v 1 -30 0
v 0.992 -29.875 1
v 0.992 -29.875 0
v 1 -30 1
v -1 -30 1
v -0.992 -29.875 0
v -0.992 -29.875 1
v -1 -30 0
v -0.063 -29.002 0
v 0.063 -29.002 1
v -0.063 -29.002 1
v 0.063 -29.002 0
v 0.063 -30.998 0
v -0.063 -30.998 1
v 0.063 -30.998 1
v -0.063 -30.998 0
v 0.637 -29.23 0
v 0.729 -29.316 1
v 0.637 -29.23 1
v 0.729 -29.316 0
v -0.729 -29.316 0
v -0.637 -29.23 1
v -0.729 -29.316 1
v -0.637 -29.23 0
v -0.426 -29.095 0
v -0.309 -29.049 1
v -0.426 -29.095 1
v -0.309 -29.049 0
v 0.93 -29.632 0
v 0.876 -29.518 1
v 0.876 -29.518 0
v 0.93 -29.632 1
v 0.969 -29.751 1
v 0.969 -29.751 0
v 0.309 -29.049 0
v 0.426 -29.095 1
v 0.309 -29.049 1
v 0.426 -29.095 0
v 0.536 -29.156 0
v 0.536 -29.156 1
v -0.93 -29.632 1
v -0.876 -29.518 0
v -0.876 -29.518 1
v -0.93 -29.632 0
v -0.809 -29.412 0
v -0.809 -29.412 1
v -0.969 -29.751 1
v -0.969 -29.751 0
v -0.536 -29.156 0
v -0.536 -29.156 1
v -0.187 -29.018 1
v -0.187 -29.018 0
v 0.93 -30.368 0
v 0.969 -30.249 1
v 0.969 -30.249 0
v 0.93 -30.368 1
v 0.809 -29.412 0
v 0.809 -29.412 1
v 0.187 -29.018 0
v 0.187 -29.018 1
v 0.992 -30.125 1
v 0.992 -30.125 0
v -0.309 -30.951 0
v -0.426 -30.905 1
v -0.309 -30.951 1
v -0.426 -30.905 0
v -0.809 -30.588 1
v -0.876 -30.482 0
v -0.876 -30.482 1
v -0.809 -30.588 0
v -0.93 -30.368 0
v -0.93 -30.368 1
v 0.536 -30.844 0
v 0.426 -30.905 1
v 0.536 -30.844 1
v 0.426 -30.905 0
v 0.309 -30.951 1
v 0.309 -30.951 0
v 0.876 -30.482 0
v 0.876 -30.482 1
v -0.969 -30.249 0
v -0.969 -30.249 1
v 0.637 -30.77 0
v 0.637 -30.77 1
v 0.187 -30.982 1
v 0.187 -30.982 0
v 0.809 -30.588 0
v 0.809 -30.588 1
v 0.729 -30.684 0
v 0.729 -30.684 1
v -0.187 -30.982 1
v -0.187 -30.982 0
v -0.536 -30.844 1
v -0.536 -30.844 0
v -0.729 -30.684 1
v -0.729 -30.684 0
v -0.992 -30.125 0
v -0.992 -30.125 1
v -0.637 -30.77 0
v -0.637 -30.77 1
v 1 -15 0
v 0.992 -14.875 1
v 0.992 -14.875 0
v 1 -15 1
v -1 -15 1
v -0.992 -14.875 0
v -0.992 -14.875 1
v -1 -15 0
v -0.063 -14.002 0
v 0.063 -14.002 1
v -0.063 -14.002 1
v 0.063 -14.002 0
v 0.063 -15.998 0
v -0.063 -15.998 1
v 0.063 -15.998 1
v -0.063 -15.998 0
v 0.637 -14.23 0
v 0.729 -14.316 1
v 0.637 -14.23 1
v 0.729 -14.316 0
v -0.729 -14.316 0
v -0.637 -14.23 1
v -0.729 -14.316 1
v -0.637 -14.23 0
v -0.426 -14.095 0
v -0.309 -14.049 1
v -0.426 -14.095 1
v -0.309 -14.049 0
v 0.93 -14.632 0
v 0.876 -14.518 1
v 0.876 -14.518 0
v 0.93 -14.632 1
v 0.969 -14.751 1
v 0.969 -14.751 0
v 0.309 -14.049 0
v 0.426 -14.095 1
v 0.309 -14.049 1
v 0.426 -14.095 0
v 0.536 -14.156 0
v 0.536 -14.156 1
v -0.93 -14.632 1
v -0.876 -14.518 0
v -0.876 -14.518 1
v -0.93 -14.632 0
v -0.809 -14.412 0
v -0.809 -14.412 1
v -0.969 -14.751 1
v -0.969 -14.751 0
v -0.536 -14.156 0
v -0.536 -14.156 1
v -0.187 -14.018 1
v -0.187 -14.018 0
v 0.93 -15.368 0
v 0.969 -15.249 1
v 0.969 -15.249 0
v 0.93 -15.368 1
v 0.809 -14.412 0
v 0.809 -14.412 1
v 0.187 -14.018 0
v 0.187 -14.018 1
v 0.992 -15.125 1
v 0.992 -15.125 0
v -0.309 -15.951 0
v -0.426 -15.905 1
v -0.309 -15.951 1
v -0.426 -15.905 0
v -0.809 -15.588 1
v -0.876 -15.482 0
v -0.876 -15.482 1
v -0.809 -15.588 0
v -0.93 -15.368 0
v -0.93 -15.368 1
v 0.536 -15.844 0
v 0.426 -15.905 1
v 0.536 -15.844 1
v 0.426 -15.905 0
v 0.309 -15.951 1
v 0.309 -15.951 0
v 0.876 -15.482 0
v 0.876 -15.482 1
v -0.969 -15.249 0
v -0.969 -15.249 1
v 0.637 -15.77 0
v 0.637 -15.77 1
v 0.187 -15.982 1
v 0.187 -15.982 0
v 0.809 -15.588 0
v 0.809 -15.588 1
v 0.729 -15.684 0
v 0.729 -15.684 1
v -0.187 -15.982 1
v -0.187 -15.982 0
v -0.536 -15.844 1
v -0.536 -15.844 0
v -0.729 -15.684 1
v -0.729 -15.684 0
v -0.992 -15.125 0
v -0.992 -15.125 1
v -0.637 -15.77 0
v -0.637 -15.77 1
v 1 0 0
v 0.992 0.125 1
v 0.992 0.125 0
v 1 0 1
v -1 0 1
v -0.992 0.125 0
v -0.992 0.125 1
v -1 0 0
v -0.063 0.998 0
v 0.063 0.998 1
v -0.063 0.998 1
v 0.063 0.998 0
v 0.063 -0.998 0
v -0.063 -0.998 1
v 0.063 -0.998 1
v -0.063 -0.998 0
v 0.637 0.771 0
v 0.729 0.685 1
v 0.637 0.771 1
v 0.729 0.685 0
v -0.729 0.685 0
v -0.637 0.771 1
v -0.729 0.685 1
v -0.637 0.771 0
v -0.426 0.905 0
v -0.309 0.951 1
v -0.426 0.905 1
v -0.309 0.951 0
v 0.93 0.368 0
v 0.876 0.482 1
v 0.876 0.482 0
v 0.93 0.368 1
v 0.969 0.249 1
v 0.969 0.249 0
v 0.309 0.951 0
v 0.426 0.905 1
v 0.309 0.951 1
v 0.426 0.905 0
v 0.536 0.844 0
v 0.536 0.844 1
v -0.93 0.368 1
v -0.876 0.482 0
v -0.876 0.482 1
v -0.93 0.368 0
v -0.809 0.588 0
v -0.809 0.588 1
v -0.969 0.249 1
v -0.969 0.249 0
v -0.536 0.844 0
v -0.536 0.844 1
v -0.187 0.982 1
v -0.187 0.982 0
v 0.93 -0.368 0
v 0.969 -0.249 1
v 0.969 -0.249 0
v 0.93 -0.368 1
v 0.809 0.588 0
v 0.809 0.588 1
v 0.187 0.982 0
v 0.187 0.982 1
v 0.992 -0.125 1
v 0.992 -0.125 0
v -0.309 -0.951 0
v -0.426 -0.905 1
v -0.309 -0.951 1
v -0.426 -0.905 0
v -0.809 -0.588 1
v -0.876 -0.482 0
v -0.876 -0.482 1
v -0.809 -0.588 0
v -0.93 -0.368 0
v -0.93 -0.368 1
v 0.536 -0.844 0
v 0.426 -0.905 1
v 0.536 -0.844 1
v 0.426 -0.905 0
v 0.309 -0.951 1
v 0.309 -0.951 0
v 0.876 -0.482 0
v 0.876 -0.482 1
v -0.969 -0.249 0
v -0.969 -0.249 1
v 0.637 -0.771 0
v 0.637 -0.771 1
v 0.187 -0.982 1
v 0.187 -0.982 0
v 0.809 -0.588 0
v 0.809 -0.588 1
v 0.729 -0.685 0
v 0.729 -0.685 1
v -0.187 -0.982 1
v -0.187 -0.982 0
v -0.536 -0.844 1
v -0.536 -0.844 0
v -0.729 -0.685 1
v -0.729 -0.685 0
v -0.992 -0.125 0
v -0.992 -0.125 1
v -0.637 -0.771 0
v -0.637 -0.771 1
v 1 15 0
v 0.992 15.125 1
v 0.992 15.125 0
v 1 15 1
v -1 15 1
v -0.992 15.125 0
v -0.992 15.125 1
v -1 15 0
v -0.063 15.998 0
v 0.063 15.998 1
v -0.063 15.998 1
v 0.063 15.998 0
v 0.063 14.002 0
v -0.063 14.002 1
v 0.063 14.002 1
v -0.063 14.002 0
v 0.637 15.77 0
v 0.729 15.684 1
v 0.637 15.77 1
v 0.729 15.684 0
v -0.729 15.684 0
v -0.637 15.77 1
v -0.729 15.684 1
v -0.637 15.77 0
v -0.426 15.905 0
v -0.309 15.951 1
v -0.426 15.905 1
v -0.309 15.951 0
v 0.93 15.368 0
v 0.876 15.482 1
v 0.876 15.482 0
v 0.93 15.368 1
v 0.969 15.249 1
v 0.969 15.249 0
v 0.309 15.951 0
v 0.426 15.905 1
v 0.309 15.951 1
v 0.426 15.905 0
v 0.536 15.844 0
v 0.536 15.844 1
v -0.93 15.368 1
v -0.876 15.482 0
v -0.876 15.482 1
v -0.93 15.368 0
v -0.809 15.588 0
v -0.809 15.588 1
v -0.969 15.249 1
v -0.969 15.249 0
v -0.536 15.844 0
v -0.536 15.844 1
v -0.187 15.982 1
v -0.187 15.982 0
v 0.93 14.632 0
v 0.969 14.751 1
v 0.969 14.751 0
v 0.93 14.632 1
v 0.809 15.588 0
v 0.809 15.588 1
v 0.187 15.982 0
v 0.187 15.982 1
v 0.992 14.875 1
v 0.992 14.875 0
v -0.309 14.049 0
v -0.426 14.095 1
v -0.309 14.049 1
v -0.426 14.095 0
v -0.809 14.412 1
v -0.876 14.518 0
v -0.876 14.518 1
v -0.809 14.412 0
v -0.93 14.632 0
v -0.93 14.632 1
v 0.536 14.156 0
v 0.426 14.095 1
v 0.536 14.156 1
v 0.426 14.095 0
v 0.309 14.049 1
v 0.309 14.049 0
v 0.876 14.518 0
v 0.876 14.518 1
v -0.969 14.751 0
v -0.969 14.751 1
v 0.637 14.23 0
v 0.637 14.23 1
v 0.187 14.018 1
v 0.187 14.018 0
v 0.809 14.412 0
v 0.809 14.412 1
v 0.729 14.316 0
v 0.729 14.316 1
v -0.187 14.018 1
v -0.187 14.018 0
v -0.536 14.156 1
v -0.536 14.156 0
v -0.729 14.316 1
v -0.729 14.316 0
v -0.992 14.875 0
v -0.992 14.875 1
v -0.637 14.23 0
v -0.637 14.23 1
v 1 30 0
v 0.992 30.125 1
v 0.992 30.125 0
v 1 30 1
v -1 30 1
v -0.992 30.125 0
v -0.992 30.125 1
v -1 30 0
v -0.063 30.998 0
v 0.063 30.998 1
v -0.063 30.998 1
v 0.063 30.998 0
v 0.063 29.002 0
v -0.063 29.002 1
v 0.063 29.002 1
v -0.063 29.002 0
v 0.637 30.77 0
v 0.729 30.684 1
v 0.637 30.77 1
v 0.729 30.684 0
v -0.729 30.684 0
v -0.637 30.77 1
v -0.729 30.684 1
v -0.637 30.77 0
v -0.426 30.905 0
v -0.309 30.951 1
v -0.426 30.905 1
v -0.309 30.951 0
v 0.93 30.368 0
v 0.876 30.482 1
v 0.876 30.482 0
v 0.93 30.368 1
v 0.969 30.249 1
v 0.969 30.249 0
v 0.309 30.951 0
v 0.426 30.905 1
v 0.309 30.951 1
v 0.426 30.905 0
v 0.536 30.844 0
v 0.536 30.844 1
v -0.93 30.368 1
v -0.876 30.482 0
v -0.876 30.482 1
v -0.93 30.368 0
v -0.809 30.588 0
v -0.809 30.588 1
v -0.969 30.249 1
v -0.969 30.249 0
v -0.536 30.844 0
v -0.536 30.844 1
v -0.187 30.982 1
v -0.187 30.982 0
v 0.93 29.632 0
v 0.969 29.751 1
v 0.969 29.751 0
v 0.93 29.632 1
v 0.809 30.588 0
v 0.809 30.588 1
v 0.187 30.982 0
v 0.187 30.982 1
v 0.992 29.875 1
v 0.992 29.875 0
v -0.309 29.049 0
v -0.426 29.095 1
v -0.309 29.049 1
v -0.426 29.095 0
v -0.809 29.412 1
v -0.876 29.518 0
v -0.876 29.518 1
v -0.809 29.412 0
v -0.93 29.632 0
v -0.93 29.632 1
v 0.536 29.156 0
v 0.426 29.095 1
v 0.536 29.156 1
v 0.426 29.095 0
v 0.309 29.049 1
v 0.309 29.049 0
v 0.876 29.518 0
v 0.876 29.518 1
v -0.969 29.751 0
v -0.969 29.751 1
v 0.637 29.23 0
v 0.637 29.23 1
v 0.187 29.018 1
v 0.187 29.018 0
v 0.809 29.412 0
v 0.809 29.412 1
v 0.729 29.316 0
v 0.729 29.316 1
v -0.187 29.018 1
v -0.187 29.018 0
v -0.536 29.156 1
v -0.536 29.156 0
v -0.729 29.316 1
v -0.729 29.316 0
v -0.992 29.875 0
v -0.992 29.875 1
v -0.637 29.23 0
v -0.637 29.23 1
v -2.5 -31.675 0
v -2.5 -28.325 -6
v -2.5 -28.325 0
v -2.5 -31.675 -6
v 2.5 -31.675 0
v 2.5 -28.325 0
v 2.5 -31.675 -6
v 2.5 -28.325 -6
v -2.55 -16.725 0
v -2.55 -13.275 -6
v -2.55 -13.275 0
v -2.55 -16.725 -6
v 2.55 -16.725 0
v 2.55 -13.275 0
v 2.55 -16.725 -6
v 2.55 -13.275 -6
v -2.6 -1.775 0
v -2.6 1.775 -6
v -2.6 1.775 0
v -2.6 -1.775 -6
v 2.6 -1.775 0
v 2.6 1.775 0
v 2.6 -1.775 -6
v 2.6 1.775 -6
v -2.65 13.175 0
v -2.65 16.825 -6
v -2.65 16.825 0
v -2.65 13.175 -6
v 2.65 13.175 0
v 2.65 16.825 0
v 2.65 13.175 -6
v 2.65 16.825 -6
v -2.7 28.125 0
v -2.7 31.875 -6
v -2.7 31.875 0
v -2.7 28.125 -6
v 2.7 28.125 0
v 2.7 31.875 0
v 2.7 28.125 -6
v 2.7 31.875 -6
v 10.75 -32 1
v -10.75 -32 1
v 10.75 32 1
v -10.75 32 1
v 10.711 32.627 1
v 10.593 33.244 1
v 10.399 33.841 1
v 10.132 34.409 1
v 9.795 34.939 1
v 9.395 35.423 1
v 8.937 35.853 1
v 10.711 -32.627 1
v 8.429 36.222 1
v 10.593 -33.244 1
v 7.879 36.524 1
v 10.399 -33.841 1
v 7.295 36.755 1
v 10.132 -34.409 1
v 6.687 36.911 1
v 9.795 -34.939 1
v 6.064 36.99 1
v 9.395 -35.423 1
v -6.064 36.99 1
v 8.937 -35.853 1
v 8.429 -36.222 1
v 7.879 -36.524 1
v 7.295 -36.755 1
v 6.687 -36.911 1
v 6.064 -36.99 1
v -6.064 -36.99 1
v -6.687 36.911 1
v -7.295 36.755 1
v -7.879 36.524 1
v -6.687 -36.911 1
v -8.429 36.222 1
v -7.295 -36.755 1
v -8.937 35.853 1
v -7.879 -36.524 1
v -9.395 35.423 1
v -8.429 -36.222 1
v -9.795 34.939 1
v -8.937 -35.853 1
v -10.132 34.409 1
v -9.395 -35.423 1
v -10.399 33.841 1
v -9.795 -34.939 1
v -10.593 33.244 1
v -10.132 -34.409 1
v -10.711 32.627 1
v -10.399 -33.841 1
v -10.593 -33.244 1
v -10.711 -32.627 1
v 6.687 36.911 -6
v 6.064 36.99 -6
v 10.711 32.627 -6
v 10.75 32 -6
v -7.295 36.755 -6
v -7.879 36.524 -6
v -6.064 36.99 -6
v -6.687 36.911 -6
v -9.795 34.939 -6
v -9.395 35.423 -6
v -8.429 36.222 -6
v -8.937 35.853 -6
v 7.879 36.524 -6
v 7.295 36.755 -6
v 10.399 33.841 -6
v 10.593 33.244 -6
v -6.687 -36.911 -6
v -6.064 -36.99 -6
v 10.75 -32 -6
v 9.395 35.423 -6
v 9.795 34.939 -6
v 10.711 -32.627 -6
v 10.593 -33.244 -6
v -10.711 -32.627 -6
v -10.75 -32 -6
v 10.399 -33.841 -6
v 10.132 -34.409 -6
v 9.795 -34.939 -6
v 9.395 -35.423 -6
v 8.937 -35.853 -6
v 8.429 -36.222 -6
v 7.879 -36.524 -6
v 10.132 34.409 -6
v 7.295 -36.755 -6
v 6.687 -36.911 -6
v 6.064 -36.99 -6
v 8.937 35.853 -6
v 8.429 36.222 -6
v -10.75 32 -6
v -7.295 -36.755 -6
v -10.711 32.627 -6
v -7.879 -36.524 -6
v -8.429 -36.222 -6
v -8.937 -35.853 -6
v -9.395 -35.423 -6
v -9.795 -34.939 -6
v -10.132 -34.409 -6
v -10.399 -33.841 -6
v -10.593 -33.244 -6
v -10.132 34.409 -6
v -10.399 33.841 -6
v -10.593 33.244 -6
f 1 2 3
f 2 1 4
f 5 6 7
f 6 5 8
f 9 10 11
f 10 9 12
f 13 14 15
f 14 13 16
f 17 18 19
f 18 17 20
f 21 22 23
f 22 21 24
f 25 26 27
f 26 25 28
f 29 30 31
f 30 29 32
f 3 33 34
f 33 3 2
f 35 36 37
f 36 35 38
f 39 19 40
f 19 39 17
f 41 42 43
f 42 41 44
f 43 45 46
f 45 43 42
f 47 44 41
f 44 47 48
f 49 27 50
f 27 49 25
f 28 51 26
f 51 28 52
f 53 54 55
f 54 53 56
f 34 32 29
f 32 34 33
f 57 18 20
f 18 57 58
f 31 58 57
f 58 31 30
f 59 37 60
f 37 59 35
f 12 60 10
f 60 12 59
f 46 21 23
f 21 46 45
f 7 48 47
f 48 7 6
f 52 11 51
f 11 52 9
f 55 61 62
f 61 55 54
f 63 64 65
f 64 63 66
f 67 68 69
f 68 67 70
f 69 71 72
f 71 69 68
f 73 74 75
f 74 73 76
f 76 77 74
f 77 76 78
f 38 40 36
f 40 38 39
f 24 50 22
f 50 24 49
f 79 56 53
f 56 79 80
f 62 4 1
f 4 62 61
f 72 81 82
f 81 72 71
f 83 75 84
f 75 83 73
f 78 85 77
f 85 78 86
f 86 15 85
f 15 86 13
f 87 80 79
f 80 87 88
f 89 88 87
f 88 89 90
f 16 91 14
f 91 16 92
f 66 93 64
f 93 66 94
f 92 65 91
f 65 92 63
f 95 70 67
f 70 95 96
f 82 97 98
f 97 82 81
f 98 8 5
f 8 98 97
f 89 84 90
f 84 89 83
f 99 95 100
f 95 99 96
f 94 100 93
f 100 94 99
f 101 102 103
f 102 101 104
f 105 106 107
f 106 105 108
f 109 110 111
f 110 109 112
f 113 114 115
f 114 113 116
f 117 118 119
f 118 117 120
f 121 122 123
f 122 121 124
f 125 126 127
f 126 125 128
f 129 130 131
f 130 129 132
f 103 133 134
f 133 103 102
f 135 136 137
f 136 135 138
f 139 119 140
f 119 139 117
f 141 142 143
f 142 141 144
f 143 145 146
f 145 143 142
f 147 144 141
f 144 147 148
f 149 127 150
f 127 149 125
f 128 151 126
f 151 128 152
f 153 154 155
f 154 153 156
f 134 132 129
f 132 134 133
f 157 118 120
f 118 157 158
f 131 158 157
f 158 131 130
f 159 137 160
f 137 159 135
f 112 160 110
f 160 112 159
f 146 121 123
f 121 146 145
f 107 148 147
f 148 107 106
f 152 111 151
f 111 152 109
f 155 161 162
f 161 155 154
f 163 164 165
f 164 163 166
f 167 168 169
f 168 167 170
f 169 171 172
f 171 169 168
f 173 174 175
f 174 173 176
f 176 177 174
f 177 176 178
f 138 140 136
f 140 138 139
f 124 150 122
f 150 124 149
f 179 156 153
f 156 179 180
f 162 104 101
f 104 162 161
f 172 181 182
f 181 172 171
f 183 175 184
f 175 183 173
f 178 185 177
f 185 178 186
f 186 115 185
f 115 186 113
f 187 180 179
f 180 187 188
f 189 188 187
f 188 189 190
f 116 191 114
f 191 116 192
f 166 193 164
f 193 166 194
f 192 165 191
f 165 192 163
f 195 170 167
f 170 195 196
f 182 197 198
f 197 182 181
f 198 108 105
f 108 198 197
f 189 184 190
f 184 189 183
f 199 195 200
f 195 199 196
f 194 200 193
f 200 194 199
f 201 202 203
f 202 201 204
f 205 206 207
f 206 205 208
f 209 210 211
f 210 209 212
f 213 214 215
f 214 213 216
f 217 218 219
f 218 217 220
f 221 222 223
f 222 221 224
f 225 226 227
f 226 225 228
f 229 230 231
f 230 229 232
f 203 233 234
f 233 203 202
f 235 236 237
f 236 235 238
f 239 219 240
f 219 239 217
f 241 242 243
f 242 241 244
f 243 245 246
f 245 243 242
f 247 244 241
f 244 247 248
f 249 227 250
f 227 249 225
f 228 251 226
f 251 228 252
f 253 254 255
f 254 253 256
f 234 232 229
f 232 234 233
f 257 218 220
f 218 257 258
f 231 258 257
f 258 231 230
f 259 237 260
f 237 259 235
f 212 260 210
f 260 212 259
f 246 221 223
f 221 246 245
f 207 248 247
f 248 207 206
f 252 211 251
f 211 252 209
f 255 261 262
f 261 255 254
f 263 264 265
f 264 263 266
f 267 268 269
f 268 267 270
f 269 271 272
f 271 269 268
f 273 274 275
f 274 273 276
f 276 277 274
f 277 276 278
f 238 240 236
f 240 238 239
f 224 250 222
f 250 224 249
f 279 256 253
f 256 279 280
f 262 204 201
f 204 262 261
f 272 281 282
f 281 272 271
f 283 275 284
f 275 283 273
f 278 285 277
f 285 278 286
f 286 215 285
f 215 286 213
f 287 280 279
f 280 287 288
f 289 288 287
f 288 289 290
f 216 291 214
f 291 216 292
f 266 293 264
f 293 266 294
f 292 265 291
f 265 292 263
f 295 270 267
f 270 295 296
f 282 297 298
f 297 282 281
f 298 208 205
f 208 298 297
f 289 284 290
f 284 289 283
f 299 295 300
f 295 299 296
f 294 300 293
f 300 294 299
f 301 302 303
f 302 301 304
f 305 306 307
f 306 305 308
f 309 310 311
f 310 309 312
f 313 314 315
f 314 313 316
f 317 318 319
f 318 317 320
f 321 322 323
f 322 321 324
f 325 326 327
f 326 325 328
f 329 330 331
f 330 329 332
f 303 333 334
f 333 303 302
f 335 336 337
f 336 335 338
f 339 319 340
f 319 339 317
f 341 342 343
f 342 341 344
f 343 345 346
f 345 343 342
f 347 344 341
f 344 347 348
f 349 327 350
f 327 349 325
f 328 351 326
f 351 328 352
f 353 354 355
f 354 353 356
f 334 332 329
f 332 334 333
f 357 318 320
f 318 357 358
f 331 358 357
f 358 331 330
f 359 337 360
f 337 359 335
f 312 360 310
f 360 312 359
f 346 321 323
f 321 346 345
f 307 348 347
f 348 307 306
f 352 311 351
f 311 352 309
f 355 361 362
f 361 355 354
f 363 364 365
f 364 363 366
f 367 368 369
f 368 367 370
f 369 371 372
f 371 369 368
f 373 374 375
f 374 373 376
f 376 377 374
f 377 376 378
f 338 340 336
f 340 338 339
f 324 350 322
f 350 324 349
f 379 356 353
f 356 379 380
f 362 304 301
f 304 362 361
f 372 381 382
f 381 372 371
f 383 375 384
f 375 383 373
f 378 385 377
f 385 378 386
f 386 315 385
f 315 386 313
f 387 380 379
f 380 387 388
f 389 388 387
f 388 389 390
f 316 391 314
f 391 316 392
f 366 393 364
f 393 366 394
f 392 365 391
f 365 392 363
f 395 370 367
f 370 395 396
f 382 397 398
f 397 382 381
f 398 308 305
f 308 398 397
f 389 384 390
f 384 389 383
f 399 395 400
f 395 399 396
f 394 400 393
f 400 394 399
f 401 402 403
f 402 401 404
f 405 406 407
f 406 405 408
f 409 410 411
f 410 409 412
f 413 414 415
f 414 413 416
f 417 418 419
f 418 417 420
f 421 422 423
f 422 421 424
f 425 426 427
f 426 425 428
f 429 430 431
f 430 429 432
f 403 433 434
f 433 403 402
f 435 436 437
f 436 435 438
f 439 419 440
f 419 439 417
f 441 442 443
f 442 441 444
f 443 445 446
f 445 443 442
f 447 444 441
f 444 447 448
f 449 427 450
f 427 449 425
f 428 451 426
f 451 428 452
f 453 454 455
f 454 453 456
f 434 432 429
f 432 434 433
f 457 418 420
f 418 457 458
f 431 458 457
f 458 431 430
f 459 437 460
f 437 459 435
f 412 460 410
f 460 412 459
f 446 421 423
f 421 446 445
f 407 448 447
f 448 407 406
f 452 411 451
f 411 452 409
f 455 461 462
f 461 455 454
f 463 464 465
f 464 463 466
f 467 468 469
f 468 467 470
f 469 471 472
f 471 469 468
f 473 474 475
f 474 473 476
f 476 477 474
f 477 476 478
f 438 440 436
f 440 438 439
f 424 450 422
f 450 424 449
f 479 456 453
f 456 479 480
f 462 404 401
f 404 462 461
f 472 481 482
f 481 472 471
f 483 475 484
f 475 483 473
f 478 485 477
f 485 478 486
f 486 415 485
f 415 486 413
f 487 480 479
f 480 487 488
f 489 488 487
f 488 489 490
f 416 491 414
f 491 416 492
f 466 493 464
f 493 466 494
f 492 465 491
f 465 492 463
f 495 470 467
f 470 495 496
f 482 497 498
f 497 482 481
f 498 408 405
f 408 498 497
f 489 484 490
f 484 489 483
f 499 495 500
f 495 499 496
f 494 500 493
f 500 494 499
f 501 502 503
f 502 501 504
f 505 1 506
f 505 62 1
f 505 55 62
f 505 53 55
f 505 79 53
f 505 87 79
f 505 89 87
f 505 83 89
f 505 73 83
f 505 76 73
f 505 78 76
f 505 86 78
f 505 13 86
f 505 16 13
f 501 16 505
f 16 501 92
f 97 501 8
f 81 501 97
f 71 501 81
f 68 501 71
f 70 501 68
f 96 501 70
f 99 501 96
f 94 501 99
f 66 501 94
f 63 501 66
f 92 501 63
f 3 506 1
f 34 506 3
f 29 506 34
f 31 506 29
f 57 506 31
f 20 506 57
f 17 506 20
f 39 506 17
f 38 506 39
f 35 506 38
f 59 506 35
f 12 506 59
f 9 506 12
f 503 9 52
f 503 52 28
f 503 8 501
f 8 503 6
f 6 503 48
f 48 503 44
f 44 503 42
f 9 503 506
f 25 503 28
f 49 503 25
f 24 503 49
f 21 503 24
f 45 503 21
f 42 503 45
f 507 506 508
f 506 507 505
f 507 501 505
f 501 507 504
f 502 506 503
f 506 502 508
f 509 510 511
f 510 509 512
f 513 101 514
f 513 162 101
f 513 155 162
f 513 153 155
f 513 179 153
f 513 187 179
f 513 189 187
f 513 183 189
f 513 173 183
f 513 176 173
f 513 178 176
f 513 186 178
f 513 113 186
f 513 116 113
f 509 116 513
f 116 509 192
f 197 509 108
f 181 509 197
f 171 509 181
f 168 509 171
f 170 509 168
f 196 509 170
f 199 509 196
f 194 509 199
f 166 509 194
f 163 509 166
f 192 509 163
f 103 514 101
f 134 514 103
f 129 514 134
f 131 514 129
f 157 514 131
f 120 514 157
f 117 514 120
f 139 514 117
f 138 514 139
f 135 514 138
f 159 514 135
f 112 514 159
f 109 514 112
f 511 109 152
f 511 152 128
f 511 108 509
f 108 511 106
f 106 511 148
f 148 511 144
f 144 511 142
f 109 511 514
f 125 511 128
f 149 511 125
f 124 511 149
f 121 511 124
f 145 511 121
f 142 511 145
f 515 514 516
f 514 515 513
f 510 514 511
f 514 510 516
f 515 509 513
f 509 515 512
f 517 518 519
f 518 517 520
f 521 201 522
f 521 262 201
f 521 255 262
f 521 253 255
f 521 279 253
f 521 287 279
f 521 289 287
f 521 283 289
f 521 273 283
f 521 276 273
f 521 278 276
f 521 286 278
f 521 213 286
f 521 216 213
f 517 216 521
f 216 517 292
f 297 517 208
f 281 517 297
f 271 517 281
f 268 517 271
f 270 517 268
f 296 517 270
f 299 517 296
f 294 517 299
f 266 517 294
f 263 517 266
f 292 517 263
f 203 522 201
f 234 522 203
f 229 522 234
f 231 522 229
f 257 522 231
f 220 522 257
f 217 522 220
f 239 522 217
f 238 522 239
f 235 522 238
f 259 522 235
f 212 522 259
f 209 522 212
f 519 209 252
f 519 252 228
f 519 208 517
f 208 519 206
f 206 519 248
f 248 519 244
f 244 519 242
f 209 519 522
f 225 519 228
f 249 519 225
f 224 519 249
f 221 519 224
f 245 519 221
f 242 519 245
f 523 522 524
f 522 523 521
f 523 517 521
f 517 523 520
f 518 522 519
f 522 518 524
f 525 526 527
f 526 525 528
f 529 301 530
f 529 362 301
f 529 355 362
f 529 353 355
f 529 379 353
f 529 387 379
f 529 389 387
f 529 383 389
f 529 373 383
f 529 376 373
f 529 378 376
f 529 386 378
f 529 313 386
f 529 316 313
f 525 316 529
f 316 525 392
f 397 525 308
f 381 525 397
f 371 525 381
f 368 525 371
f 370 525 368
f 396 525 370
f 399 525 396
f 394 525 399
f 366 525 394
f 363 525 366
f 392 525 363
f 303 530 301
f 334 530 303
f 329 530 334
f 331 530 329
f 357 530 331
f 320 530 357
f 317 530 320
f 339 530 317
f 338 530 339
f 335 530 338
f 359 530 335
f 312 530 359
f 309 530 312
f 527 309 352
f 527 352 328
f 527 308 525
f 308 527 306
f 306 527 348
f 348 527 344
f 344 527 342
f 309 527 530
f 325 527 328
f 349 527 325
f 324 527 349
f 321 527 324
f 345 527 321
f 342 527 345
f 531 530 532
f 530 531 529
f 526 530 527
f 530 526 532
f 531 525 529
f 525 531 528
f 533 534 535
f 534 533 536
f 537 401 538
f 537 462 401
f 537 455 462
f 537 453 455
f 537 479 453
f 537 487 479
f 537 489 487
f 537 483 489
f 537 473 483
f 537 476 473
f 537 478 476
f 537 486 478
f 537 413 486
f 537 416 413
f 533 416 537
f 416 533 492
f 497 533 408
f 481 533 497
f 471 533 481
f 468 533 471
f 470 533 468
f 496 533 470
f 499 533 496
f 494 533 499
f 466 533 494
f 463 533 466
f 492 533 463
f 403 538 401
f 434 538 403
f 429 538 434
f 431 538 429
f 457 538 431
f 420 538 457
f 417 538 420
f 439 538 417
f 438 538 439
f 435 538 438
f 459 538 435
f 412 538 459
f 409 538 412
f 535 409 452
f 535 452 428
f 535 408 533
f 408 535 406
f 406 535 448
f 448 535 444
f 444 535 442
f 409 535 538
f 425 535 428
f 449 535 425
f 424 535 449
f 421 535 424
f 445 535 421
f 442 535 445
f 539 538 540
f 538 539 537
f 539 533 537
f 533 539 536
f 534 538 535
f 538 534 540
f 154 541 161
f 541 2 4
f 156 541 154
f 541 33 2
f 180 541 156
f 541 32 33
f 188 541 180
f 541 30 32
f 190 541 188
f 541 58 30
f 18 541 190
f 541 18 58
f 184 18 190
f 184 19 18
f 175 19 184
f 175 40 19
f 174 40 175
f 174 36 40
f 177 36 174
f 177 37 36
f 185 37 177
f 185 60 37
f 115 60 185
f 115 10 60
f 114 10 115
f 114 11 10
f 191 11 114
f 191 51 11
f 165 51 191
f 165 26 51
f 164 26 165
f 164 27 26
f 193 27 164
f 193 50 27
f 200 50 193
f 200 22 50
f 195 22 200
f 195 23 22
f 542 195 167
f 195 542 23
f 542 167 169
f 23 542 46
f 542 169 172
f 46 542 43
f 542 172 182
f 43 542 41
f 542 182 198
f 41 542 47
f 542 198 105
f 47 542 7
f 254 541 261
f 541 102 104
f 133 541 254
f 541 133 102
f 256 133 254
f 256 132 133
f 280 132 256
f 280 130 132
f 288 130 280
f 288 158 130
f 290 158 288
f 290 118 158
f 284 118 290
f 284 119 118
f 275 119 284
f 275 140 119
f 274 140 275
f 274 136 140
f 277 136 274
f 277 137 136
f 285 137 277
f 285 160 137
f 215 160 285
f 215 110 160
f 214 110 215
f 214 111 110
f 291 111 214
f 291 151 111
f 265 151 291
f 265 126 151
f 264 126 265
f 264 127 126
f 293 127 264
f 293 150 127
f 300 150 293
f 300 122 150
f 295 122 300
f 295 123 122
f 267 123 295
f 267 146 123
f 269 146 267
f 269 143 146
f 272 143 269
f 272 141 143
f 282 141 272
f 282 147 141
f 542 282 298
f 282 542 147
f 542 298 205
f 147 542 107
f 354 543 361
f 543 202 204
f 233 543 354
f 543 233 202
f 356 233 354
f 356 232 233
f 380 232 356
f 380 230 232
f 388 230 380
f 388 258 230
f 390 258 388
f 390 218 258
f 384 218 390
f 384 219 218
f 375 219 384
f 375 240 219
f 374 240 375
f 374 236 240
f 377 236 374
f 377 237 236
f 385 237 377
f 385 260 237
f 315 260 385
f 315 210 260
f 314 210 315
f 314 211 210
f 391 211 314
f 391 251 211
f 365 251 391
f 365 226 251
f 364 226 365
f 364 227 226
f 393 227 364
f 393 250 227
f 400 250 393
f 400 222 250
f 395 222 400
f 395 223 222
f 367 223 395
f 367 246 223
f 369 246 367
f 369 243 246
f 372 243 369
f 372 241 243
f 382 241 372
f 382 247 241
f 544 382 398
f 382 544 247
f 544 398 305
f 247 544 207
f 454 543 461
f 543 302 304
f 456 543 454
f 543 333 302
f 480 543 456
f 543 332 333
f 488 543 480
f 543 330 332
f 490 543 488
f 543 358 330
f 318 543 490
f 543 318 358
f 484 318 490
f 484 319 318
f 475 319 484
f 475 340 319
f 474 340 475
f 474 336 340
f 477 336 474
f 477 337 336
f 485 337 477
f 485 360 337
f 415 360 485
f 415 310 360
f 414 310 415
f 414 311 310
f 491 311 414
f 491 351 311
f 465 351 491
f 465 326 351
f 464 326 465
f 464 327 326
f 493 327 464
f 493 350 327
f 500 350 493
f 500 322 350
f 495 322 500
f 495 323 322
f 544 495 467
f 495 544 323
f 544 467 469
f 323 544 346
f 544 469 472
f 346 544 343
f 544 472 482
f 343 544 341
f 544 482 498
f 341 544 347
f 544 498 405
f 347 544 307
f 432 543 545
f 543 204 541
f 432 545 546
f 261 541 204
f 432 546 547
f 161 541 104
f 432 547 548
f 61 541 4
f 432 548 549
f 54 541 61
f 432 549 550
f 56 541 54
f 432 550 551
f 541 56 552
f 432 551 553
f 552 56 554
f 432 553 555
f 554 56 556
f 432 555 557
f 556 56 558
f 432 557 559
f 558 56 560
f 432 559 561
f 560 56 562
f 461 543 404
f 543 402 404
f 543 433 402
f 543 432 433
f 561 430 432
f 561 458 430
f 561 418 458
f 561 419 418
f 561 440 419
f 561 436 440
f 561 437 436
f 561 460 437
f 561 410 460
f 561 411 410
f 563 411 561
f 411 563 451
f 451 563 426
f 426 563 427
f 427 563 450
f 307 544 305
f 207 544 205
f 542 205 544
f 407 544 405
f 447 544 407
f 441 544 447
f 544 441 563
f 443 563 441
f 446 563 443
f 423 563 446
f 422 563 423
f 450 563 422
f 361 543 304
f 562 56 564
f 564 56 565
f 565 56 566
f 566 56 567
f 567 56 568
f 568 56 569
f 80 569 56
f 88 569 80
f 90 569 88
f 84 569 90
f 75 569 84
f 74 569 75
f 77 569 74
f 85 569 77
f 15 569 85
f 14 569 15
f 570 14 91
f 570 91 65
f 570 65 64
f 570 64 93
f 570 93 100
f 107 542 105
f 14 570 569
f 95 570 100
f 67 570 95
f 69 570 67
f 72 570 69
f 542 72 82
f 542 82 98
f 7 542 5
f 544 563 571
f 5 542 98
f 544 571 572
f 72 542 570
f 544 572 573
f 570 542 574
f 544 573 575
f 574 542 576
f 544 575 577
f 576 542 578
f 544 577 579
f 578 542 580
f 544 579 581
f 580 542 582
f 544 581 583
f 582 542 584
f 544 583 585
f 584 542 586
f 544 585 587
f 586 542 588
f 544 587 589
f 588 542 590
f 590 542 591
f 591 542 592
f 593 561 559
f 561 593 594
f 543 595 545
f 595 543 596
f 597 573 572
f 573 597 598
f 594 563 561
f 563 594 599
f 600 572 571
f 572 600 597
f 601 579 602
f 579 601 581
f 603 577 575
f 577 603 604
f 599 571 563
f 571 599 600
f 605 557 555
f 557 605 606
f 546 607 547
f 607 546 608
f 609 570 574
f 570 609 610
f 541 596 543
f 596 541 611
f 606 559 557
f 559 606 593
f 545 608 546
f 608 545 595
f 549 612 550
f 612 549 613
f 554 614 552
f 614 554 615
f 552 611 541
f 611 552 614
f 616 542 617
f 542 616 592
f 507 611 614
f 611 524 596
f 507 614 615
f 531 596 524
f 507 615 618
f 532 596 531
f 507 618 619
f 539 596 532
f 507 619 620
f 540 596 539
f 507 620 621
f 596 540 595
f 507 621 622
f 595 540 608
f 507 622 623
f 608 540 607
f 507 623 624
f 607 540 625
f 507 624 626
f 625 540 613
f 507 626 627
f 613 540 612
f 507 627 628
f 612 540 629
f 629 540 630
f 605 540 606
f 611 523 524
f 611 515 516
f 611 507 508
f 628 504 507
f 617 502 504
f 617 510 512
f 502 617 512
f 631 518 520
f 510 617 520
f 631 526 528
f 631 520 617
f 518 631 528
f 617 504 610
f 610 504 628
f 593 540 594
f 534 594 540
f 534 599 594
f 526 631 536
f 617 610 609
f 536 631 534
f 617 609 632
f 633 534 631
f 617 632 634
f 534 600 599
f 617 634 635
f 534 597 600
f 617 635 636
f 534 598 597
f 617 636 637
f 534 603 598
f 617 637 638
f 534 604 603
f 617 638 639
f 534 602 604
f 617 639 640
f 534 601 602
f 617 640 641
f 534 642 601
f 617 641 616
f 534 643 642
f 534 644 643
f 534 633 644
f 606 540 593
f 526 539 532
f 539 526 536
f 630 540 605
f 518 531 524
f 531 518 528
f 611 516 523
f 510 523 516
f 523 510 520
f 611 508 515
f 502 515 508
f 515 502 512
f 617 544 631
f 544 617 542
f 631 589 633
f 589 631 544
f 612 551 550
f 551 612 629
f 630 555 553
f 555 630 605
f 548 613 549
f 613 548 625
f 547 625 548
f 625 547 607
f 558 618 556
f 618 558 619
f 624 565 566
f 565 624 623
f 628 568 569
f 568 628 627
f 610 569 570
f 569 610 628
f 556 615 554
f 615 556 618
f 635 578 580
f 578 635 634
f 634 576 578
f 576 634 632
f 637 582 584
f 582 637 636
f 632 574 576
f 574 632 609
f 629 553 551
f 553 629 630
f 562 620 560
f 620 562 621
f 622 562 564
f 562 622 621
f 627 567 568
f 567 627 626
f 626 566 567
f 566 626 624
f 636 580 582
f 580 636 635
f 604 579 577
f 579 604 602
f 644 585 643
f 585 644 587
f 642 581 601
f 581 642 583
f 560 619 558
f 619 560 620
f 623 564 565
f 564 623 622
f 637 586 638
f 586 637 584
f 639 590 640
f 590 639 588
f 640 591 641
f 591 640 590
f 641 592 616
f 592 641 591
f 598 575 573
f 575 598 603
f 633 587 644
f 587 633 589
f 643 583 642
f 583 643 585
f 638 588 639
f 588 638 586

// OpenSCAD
$fn = 50;


difference() {
	union() {
		translate(v = [0, 0, -6]) {
			hull() {
				translate(v = [-5.7500000000, 32.0000000000, 0]) {
					cylinder(h = 7, r = 5);
				}
				translate(v = [5.7500000000, 32.0000000000, 0]) {
					cylinder(h = 7, r = 5);
				}
				translate(v = [-5.7500000000, -32.0000000000, 0]) {
					cylinder(h = 7, r = 5);
				}
				translate(v = [5.7500000000, -32.0000000000, 0]) {
					cylinder(h = 7, r = 5);
				}
			}
		}
	}
	union() {
		translate(v = [0, -30, 2]) {
			rotate(a = [0, 0, 0]) {
				difference() {
					union() {
						cylinder(h = 1.2500000000, r = 2.5000000000);
						translate(v = [0, 0, -12.0000000000]) {
							cylinder(h = 12, r = 0.7500000000);
						}
						translate(v = [0, 0, -12.0000000000]) {
							cylinder(h = 12, r = 1.0000000000);
						}
						translate(v = [0, 0, -12.0000000000]) {
							cylinder(h = 12, r = 0.7500000000);
						}
					}
					union();
				}
			}
		}
		translate(v = [0, -15, 2]) {
			rotate(a = [0, 0, 0]) {
				difference() {
					union() {
						cylinder(h = 1.2500000000, r = 2.5000000000);
						translate(v = [0, 0, -12.0000000000]) {
							cylinder(h = 12, r = 0.7500000000);
						}
						translate(v = [0, 0, -12.0000000000]) {
							cylinder(h = 12, r = 1.0000000000);
						}
						translate(v = [0, 0, -12.0000000000]) {
							cylinder(h = 12, r = 0.7500000000);
						}
					}
					union();
				}
			}
		}
		translate(v = [0, 0, 2]) {
			rotate(a = [0, 0, 0]) {
				difference() {
					union() {
						cylinder(h = 1.2500000000, r = 2.5000000000);
						translate(v = [0, 0, -12.0000000000]) {
							cylinder(h = 12, r = 0.7500000000);
						}
						translate(v = [0, 0, -12.0000000000]) {
							cylinder(h = 12, r = 1.0000000000);
						}
						translate(v = [0, 0, -12.0000000000]) {
							cylinder(h = 12, r = 0.7500000000);
						}
					}
					union();
				}
			}
		}
		translate(v = [0, 15, 2]) {
			rotate(a = [0, 0, 0]) {
				difference() {
					union() {
						cylinder(h = 1.2500000000, r = 2.5000000000);
						translate(v = [0, 0, -12.0000000000]) {
							cylinder(h = 12, r = 0.7500000000);
						}
						translate(v = [0, 0, -12.0000000000]) {
							cylinder(h = 12, r = 1.0000000000);
						}
						translate(v = [0, 0, -12.0000000000]) {
							cylinder(h = 12, r = 0.7500000000);
						}
					}
					union();
				}
			}
		}
		translate(v = [0, 30, 2]) {
			rotate(a = [0, 0, 0]) {
				difference() {
					union() {
						cylinder(h = 1.2500000000, r = 2.5000000000);
						translate(v = [0, 0, -12.0000000000]) {
							cylinder(h = 12, r = 0.7500000000);
						}
						translate(v = [0, 0, -12.0000000000]) {
							cylinder(h = 12, r = 1.0000000000);
						}
						translate(v = [0, 0, -12.0000000000]) {
							cylinder(h = 12, r = 0.7500000000);
						}
					}
					union();
				}
			}
		}
		translate(v = [-2.5000000000, -31.6750000000, -50]) {
			cube(size = [5.0000000000, 3.3500000000, 50]);
		}
		translate(v = [-2.5500000000, -16.7250000000, -50]) {
			cube(size = [5.1000000000, 3.4500000000, 50]);
		}
		translate(v = [-2.6000000000, -1.7750000000, -50]) {
			cube(size = [5.2000000000, 3.5500000000, 50]);
		}
		translate(v = [-2.6500000000, 13.1750000000, -50]) {
			cube(size = [5.3000000000, 3.6500000000, 50]);
		}
		translate(v = [-2.7000000000, 28.1250000000, -50]) {
			cube(size = [5.4000000000, 3.7500000000, 50]);
		}
	}
}
